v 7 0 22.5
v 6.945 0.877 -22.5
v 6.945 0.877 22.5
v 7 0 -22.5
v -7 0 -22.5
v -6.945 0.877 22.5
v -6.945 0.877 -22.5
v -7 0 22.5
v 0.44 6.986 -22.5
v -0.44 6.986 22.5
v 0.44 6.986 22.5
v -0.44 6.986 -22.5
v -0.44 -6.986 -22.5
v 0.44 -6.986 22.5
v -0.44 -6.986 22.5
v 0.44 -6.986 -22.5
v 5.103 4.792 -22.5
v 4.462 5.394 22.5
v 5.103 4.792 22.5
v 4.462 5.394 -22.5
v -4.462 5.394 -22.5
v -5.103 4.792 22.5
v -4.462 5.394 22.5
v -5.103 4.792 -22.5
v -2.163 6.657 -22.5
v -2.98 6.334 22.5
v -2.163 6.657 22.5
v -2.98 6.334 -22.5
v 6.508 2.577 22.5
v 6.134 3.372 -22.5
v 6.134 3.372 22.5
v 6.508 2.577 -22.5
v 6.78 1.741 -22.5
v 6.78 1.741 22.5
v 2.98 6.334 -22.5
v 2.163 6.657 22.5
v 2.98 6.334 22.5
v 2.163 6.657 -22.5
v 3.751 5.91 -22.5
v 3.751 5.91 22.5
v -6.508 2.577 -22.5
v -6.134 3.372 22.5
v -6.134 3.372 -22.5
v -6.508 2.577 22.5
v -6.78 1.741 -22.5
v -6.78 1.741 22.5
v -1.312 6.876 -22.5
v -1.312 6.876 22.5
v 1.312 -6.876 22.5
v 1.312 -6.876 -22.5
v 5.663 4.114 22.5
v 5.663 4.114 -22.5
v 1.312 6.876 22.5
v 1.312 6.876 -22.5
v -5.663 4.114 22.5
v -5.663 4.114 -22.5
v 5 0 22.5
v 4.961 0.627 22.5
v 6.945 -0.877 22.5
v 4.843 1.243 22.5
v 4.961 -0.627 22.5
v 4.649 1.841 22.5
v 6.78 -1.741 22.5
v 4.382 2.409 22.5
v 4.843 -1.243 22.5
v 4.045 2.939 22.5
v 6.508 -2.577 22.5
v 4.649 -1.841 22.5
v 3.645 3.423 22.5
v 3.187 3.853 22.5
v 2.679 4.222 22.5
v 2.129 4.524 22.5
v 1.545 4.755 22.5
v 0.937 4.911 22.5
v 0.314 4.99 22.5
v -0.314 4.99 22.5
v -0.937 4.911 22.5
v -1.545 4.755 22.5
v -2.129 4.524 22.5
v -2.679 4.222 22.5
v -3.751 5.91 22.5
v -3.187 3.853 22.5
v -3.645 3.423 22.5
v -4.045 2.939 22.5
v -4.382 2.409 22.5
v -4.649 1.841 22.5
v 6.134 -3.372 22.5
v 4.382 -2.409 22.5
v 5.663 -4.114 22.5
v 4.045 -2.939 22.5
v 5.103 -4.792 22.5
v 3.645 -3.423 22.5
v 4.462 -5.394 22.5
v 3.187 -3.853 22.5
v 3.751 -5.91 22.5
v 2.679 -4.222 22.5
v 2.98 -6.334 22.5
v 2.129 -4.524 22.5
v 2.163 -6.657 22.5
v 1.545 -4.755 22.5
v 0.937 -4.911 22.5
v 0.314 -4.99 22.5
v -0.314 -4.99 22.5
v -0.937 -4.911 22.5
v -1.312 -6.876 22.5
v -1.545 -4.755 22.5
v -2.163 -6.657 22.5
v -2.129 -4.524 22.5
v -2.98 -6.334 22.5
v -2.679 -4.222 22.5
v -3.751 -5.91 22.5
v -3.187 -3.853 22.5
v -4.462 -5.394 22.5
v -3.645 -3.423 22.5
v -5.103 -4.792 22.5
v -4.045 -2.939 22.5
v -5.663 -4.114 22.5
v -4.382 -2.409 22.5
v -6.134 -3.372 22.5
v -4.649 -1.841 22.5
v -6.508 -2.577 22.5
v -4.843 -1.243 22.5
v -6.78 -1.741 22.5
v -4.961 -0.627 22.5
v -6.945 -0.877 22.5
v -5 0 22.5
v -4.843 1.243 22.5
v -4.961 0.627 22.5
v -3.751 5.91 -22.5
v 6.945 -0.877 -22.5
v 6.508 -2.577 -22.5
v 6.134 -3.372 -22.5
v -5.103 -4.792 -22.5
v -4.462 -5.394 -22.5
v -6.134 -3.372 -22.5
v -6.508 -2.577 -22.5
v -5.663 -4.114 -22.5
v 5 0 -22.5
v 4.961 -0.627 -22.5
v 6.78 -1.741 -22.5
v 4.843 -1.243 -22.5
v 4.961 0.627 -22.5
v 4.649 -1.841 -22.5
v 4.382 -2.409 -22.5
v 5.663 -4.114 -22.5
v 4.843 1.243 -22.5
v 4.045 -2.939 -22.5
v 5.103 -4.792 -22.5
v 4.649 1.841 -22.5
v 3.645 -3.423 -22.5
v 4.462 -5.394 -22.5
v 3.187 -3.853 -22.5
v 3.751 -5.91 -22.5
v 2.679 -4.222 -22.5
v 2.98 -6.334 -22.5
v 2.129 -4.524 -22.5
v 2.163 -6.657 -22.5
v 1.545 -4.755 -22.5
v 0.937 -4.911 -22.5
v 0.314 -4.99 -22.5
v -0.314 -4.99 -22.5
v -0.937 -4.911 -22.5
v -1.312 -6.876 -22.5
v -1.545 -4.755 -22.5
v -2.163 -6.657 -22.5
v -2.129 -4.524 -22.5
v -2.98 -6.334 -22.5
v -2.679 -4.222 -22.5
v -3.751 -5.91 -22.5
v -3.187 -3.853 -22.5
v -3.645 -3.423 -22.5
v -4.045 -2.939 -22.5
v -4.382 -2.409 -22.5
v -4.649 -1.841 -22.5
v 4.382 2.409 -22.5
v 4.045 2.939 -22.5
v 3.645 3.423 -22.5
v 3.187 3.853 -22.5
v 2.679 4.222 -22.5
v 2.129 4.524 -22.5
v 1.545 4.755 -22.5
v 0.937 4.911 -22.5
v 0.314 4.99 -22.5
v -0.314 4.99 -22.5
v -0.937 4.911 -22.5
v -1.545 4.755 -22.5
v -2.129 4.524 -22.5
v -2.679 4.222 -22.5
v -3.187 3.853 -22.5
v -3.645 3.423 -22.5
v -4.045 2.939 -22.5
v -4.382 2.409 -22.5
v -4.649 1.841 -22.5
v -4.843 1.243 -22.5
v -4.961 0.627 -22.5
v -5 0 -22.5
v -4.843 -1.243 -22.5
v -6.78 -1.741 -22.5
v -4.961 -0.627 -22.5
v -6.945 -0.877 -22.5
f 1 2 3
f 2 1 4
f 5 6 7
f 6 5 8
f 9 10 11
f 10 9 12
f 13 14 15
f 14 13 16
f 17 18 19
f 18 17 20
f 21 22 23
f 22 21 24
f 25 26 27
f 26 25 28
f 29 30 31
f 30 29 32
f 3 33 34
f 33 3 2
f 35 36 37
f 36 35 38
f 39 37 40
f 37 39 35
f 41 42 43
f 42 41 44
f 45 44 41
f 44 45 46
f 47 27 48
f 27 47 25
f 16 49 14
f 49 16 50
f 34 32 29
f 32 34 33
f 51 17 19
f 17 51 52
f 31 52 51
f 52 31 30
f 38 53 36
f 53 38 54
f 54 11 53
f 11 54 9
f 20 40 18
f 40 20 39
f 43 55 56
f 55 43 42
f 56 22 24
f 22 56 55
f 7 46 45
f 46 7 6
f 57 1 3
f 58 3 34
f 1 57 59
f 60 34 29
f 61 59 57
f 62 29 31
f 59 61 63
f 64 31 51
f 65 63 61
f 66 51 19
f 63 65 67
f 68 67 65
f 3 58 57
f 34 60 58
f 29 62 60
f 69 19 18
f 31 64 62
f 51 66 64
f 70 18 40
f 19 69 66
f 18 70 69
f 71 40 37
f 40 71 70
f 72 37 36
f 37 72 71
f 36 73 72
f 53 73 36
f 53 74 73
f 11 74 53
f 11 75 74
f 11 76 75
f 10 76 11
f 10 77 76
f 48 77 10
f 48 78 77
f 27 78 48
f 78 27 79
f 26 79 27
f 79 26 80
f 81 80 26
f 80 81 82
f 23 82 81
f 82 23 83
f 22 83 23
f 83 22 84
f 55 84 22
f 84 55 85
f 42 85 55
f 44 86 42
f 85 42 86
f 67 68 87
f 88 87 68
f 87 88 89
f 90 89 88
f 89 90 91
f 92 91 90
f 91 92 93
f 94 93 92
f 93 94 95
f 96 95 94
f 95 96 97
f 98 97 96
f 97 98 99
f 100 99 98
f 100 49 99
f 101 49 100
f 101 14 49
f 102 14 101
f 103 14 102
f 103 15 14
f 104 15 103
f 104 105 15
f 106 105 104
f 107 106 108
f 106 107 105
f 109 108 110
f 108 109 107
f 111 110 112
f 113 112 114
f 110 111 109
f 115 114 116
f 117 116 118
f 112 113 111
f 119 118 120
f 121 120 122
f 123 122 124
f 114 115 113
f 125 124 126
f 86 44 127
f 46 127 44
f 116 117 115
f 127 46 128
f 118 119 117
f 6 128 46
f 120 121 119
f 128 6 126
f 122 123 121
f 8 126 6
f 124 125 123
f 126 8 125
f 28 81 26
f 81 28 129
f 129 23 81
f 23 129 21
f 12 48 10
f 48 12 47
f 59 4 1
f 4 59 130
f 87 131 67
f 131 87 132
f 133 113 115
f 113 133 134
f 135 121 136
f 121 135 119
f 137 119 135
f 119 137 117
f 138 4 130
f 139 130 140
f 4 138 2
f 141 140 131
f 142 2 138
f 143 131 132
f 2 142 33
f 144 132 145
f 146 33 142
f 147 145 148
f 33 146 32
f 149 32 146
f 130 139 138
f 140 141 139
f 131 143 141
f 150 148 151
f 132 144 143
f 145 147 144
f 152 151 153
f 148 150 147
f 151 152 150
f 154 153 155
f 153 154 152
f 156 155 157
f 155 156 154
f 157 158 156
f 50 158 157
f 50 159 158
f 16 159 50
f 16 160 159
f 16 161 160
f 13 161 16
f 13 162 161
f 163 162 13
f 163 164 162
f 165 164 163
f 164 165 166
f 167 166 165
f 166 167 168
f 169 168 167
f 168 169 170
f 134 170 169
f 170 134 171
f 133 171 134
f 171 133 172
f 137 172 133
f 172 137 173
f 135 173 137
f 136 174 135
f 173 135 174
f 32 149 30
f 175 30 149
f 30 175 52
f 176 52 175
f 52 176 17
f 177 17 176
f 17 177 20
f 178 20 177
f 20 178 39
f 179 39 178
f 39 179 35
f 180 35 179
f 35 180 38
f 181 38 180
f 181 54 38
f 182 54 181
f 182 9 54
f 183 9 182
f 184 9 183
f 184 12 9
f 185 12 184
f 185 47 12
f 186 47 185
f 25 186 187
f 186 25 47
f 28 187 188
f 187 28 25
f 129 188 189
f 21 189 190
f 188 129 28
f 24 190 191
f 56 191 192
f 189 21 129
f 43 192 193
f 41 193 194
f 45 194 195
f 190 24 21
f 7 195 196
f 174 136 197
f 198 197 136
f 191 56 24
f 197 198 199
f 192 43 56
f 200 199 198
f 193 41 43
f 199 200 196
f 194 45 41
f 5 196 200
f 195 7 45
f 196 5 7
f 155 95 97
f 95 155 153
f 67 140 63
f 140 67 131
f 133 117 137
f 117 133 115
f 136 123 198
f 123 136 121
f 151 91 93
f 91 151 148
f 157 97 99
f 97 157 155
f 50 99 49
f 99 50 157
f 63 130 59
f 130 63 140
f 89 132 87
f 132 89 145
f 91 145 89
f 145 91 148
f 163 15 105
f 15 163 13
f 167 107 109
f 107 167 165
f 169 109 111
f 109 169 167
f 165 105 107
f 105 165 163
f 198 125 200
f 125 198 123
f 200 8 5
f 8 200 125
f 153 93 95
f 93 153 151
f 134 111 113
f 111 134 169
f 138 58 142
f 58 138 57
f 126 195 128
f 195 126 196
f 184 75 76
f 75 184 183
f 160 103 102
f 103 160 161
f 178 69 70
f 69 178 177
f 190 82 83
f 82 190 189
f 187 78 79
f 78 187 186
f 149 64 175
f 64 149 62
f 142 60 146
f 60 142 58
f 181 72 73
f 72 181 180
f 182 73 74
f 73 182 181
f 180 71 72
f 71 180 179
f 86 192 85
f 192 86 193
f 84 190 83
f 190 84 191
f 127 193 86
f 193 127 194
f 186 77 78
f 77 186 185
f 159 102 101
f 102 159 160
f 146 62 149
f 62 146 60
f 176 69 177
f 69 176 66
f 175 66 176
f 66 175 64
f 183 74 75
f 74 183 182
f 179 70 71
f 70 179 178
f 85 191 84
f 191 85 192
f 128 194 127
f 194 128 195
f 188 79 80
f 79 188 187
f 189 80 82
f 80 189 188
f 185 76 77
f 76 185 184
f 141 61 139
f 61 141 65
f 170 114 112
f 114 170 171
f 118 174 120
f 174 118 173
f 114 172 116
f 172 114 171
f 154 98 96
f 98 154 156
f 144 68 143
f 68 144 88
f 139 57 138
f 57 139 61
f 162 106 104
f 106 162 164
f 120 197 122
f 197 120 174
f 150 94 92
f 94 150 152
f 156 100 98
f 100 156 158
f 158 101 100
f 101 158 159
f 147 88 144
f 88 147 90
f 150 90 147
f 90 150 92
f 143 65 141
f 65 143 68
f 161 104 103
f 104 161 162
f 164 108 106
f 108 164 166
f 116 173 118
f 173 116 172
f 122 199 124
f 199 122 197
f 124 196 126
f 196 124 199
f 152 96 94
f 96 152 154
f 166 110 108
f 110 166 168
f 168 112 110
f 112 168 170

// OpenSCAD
$fn = 50;


difference() {
	union() {
		translate(v = [0, 0, -22.5000000000]) {
			cylinder(h = 45, r = 7.0000000000);
		}
	}
	union() {
		translate(v = [0, 0, -100.0000000000]) {
			cylinder(h = 200, r = 5.0000000000);
		}
	}
}
